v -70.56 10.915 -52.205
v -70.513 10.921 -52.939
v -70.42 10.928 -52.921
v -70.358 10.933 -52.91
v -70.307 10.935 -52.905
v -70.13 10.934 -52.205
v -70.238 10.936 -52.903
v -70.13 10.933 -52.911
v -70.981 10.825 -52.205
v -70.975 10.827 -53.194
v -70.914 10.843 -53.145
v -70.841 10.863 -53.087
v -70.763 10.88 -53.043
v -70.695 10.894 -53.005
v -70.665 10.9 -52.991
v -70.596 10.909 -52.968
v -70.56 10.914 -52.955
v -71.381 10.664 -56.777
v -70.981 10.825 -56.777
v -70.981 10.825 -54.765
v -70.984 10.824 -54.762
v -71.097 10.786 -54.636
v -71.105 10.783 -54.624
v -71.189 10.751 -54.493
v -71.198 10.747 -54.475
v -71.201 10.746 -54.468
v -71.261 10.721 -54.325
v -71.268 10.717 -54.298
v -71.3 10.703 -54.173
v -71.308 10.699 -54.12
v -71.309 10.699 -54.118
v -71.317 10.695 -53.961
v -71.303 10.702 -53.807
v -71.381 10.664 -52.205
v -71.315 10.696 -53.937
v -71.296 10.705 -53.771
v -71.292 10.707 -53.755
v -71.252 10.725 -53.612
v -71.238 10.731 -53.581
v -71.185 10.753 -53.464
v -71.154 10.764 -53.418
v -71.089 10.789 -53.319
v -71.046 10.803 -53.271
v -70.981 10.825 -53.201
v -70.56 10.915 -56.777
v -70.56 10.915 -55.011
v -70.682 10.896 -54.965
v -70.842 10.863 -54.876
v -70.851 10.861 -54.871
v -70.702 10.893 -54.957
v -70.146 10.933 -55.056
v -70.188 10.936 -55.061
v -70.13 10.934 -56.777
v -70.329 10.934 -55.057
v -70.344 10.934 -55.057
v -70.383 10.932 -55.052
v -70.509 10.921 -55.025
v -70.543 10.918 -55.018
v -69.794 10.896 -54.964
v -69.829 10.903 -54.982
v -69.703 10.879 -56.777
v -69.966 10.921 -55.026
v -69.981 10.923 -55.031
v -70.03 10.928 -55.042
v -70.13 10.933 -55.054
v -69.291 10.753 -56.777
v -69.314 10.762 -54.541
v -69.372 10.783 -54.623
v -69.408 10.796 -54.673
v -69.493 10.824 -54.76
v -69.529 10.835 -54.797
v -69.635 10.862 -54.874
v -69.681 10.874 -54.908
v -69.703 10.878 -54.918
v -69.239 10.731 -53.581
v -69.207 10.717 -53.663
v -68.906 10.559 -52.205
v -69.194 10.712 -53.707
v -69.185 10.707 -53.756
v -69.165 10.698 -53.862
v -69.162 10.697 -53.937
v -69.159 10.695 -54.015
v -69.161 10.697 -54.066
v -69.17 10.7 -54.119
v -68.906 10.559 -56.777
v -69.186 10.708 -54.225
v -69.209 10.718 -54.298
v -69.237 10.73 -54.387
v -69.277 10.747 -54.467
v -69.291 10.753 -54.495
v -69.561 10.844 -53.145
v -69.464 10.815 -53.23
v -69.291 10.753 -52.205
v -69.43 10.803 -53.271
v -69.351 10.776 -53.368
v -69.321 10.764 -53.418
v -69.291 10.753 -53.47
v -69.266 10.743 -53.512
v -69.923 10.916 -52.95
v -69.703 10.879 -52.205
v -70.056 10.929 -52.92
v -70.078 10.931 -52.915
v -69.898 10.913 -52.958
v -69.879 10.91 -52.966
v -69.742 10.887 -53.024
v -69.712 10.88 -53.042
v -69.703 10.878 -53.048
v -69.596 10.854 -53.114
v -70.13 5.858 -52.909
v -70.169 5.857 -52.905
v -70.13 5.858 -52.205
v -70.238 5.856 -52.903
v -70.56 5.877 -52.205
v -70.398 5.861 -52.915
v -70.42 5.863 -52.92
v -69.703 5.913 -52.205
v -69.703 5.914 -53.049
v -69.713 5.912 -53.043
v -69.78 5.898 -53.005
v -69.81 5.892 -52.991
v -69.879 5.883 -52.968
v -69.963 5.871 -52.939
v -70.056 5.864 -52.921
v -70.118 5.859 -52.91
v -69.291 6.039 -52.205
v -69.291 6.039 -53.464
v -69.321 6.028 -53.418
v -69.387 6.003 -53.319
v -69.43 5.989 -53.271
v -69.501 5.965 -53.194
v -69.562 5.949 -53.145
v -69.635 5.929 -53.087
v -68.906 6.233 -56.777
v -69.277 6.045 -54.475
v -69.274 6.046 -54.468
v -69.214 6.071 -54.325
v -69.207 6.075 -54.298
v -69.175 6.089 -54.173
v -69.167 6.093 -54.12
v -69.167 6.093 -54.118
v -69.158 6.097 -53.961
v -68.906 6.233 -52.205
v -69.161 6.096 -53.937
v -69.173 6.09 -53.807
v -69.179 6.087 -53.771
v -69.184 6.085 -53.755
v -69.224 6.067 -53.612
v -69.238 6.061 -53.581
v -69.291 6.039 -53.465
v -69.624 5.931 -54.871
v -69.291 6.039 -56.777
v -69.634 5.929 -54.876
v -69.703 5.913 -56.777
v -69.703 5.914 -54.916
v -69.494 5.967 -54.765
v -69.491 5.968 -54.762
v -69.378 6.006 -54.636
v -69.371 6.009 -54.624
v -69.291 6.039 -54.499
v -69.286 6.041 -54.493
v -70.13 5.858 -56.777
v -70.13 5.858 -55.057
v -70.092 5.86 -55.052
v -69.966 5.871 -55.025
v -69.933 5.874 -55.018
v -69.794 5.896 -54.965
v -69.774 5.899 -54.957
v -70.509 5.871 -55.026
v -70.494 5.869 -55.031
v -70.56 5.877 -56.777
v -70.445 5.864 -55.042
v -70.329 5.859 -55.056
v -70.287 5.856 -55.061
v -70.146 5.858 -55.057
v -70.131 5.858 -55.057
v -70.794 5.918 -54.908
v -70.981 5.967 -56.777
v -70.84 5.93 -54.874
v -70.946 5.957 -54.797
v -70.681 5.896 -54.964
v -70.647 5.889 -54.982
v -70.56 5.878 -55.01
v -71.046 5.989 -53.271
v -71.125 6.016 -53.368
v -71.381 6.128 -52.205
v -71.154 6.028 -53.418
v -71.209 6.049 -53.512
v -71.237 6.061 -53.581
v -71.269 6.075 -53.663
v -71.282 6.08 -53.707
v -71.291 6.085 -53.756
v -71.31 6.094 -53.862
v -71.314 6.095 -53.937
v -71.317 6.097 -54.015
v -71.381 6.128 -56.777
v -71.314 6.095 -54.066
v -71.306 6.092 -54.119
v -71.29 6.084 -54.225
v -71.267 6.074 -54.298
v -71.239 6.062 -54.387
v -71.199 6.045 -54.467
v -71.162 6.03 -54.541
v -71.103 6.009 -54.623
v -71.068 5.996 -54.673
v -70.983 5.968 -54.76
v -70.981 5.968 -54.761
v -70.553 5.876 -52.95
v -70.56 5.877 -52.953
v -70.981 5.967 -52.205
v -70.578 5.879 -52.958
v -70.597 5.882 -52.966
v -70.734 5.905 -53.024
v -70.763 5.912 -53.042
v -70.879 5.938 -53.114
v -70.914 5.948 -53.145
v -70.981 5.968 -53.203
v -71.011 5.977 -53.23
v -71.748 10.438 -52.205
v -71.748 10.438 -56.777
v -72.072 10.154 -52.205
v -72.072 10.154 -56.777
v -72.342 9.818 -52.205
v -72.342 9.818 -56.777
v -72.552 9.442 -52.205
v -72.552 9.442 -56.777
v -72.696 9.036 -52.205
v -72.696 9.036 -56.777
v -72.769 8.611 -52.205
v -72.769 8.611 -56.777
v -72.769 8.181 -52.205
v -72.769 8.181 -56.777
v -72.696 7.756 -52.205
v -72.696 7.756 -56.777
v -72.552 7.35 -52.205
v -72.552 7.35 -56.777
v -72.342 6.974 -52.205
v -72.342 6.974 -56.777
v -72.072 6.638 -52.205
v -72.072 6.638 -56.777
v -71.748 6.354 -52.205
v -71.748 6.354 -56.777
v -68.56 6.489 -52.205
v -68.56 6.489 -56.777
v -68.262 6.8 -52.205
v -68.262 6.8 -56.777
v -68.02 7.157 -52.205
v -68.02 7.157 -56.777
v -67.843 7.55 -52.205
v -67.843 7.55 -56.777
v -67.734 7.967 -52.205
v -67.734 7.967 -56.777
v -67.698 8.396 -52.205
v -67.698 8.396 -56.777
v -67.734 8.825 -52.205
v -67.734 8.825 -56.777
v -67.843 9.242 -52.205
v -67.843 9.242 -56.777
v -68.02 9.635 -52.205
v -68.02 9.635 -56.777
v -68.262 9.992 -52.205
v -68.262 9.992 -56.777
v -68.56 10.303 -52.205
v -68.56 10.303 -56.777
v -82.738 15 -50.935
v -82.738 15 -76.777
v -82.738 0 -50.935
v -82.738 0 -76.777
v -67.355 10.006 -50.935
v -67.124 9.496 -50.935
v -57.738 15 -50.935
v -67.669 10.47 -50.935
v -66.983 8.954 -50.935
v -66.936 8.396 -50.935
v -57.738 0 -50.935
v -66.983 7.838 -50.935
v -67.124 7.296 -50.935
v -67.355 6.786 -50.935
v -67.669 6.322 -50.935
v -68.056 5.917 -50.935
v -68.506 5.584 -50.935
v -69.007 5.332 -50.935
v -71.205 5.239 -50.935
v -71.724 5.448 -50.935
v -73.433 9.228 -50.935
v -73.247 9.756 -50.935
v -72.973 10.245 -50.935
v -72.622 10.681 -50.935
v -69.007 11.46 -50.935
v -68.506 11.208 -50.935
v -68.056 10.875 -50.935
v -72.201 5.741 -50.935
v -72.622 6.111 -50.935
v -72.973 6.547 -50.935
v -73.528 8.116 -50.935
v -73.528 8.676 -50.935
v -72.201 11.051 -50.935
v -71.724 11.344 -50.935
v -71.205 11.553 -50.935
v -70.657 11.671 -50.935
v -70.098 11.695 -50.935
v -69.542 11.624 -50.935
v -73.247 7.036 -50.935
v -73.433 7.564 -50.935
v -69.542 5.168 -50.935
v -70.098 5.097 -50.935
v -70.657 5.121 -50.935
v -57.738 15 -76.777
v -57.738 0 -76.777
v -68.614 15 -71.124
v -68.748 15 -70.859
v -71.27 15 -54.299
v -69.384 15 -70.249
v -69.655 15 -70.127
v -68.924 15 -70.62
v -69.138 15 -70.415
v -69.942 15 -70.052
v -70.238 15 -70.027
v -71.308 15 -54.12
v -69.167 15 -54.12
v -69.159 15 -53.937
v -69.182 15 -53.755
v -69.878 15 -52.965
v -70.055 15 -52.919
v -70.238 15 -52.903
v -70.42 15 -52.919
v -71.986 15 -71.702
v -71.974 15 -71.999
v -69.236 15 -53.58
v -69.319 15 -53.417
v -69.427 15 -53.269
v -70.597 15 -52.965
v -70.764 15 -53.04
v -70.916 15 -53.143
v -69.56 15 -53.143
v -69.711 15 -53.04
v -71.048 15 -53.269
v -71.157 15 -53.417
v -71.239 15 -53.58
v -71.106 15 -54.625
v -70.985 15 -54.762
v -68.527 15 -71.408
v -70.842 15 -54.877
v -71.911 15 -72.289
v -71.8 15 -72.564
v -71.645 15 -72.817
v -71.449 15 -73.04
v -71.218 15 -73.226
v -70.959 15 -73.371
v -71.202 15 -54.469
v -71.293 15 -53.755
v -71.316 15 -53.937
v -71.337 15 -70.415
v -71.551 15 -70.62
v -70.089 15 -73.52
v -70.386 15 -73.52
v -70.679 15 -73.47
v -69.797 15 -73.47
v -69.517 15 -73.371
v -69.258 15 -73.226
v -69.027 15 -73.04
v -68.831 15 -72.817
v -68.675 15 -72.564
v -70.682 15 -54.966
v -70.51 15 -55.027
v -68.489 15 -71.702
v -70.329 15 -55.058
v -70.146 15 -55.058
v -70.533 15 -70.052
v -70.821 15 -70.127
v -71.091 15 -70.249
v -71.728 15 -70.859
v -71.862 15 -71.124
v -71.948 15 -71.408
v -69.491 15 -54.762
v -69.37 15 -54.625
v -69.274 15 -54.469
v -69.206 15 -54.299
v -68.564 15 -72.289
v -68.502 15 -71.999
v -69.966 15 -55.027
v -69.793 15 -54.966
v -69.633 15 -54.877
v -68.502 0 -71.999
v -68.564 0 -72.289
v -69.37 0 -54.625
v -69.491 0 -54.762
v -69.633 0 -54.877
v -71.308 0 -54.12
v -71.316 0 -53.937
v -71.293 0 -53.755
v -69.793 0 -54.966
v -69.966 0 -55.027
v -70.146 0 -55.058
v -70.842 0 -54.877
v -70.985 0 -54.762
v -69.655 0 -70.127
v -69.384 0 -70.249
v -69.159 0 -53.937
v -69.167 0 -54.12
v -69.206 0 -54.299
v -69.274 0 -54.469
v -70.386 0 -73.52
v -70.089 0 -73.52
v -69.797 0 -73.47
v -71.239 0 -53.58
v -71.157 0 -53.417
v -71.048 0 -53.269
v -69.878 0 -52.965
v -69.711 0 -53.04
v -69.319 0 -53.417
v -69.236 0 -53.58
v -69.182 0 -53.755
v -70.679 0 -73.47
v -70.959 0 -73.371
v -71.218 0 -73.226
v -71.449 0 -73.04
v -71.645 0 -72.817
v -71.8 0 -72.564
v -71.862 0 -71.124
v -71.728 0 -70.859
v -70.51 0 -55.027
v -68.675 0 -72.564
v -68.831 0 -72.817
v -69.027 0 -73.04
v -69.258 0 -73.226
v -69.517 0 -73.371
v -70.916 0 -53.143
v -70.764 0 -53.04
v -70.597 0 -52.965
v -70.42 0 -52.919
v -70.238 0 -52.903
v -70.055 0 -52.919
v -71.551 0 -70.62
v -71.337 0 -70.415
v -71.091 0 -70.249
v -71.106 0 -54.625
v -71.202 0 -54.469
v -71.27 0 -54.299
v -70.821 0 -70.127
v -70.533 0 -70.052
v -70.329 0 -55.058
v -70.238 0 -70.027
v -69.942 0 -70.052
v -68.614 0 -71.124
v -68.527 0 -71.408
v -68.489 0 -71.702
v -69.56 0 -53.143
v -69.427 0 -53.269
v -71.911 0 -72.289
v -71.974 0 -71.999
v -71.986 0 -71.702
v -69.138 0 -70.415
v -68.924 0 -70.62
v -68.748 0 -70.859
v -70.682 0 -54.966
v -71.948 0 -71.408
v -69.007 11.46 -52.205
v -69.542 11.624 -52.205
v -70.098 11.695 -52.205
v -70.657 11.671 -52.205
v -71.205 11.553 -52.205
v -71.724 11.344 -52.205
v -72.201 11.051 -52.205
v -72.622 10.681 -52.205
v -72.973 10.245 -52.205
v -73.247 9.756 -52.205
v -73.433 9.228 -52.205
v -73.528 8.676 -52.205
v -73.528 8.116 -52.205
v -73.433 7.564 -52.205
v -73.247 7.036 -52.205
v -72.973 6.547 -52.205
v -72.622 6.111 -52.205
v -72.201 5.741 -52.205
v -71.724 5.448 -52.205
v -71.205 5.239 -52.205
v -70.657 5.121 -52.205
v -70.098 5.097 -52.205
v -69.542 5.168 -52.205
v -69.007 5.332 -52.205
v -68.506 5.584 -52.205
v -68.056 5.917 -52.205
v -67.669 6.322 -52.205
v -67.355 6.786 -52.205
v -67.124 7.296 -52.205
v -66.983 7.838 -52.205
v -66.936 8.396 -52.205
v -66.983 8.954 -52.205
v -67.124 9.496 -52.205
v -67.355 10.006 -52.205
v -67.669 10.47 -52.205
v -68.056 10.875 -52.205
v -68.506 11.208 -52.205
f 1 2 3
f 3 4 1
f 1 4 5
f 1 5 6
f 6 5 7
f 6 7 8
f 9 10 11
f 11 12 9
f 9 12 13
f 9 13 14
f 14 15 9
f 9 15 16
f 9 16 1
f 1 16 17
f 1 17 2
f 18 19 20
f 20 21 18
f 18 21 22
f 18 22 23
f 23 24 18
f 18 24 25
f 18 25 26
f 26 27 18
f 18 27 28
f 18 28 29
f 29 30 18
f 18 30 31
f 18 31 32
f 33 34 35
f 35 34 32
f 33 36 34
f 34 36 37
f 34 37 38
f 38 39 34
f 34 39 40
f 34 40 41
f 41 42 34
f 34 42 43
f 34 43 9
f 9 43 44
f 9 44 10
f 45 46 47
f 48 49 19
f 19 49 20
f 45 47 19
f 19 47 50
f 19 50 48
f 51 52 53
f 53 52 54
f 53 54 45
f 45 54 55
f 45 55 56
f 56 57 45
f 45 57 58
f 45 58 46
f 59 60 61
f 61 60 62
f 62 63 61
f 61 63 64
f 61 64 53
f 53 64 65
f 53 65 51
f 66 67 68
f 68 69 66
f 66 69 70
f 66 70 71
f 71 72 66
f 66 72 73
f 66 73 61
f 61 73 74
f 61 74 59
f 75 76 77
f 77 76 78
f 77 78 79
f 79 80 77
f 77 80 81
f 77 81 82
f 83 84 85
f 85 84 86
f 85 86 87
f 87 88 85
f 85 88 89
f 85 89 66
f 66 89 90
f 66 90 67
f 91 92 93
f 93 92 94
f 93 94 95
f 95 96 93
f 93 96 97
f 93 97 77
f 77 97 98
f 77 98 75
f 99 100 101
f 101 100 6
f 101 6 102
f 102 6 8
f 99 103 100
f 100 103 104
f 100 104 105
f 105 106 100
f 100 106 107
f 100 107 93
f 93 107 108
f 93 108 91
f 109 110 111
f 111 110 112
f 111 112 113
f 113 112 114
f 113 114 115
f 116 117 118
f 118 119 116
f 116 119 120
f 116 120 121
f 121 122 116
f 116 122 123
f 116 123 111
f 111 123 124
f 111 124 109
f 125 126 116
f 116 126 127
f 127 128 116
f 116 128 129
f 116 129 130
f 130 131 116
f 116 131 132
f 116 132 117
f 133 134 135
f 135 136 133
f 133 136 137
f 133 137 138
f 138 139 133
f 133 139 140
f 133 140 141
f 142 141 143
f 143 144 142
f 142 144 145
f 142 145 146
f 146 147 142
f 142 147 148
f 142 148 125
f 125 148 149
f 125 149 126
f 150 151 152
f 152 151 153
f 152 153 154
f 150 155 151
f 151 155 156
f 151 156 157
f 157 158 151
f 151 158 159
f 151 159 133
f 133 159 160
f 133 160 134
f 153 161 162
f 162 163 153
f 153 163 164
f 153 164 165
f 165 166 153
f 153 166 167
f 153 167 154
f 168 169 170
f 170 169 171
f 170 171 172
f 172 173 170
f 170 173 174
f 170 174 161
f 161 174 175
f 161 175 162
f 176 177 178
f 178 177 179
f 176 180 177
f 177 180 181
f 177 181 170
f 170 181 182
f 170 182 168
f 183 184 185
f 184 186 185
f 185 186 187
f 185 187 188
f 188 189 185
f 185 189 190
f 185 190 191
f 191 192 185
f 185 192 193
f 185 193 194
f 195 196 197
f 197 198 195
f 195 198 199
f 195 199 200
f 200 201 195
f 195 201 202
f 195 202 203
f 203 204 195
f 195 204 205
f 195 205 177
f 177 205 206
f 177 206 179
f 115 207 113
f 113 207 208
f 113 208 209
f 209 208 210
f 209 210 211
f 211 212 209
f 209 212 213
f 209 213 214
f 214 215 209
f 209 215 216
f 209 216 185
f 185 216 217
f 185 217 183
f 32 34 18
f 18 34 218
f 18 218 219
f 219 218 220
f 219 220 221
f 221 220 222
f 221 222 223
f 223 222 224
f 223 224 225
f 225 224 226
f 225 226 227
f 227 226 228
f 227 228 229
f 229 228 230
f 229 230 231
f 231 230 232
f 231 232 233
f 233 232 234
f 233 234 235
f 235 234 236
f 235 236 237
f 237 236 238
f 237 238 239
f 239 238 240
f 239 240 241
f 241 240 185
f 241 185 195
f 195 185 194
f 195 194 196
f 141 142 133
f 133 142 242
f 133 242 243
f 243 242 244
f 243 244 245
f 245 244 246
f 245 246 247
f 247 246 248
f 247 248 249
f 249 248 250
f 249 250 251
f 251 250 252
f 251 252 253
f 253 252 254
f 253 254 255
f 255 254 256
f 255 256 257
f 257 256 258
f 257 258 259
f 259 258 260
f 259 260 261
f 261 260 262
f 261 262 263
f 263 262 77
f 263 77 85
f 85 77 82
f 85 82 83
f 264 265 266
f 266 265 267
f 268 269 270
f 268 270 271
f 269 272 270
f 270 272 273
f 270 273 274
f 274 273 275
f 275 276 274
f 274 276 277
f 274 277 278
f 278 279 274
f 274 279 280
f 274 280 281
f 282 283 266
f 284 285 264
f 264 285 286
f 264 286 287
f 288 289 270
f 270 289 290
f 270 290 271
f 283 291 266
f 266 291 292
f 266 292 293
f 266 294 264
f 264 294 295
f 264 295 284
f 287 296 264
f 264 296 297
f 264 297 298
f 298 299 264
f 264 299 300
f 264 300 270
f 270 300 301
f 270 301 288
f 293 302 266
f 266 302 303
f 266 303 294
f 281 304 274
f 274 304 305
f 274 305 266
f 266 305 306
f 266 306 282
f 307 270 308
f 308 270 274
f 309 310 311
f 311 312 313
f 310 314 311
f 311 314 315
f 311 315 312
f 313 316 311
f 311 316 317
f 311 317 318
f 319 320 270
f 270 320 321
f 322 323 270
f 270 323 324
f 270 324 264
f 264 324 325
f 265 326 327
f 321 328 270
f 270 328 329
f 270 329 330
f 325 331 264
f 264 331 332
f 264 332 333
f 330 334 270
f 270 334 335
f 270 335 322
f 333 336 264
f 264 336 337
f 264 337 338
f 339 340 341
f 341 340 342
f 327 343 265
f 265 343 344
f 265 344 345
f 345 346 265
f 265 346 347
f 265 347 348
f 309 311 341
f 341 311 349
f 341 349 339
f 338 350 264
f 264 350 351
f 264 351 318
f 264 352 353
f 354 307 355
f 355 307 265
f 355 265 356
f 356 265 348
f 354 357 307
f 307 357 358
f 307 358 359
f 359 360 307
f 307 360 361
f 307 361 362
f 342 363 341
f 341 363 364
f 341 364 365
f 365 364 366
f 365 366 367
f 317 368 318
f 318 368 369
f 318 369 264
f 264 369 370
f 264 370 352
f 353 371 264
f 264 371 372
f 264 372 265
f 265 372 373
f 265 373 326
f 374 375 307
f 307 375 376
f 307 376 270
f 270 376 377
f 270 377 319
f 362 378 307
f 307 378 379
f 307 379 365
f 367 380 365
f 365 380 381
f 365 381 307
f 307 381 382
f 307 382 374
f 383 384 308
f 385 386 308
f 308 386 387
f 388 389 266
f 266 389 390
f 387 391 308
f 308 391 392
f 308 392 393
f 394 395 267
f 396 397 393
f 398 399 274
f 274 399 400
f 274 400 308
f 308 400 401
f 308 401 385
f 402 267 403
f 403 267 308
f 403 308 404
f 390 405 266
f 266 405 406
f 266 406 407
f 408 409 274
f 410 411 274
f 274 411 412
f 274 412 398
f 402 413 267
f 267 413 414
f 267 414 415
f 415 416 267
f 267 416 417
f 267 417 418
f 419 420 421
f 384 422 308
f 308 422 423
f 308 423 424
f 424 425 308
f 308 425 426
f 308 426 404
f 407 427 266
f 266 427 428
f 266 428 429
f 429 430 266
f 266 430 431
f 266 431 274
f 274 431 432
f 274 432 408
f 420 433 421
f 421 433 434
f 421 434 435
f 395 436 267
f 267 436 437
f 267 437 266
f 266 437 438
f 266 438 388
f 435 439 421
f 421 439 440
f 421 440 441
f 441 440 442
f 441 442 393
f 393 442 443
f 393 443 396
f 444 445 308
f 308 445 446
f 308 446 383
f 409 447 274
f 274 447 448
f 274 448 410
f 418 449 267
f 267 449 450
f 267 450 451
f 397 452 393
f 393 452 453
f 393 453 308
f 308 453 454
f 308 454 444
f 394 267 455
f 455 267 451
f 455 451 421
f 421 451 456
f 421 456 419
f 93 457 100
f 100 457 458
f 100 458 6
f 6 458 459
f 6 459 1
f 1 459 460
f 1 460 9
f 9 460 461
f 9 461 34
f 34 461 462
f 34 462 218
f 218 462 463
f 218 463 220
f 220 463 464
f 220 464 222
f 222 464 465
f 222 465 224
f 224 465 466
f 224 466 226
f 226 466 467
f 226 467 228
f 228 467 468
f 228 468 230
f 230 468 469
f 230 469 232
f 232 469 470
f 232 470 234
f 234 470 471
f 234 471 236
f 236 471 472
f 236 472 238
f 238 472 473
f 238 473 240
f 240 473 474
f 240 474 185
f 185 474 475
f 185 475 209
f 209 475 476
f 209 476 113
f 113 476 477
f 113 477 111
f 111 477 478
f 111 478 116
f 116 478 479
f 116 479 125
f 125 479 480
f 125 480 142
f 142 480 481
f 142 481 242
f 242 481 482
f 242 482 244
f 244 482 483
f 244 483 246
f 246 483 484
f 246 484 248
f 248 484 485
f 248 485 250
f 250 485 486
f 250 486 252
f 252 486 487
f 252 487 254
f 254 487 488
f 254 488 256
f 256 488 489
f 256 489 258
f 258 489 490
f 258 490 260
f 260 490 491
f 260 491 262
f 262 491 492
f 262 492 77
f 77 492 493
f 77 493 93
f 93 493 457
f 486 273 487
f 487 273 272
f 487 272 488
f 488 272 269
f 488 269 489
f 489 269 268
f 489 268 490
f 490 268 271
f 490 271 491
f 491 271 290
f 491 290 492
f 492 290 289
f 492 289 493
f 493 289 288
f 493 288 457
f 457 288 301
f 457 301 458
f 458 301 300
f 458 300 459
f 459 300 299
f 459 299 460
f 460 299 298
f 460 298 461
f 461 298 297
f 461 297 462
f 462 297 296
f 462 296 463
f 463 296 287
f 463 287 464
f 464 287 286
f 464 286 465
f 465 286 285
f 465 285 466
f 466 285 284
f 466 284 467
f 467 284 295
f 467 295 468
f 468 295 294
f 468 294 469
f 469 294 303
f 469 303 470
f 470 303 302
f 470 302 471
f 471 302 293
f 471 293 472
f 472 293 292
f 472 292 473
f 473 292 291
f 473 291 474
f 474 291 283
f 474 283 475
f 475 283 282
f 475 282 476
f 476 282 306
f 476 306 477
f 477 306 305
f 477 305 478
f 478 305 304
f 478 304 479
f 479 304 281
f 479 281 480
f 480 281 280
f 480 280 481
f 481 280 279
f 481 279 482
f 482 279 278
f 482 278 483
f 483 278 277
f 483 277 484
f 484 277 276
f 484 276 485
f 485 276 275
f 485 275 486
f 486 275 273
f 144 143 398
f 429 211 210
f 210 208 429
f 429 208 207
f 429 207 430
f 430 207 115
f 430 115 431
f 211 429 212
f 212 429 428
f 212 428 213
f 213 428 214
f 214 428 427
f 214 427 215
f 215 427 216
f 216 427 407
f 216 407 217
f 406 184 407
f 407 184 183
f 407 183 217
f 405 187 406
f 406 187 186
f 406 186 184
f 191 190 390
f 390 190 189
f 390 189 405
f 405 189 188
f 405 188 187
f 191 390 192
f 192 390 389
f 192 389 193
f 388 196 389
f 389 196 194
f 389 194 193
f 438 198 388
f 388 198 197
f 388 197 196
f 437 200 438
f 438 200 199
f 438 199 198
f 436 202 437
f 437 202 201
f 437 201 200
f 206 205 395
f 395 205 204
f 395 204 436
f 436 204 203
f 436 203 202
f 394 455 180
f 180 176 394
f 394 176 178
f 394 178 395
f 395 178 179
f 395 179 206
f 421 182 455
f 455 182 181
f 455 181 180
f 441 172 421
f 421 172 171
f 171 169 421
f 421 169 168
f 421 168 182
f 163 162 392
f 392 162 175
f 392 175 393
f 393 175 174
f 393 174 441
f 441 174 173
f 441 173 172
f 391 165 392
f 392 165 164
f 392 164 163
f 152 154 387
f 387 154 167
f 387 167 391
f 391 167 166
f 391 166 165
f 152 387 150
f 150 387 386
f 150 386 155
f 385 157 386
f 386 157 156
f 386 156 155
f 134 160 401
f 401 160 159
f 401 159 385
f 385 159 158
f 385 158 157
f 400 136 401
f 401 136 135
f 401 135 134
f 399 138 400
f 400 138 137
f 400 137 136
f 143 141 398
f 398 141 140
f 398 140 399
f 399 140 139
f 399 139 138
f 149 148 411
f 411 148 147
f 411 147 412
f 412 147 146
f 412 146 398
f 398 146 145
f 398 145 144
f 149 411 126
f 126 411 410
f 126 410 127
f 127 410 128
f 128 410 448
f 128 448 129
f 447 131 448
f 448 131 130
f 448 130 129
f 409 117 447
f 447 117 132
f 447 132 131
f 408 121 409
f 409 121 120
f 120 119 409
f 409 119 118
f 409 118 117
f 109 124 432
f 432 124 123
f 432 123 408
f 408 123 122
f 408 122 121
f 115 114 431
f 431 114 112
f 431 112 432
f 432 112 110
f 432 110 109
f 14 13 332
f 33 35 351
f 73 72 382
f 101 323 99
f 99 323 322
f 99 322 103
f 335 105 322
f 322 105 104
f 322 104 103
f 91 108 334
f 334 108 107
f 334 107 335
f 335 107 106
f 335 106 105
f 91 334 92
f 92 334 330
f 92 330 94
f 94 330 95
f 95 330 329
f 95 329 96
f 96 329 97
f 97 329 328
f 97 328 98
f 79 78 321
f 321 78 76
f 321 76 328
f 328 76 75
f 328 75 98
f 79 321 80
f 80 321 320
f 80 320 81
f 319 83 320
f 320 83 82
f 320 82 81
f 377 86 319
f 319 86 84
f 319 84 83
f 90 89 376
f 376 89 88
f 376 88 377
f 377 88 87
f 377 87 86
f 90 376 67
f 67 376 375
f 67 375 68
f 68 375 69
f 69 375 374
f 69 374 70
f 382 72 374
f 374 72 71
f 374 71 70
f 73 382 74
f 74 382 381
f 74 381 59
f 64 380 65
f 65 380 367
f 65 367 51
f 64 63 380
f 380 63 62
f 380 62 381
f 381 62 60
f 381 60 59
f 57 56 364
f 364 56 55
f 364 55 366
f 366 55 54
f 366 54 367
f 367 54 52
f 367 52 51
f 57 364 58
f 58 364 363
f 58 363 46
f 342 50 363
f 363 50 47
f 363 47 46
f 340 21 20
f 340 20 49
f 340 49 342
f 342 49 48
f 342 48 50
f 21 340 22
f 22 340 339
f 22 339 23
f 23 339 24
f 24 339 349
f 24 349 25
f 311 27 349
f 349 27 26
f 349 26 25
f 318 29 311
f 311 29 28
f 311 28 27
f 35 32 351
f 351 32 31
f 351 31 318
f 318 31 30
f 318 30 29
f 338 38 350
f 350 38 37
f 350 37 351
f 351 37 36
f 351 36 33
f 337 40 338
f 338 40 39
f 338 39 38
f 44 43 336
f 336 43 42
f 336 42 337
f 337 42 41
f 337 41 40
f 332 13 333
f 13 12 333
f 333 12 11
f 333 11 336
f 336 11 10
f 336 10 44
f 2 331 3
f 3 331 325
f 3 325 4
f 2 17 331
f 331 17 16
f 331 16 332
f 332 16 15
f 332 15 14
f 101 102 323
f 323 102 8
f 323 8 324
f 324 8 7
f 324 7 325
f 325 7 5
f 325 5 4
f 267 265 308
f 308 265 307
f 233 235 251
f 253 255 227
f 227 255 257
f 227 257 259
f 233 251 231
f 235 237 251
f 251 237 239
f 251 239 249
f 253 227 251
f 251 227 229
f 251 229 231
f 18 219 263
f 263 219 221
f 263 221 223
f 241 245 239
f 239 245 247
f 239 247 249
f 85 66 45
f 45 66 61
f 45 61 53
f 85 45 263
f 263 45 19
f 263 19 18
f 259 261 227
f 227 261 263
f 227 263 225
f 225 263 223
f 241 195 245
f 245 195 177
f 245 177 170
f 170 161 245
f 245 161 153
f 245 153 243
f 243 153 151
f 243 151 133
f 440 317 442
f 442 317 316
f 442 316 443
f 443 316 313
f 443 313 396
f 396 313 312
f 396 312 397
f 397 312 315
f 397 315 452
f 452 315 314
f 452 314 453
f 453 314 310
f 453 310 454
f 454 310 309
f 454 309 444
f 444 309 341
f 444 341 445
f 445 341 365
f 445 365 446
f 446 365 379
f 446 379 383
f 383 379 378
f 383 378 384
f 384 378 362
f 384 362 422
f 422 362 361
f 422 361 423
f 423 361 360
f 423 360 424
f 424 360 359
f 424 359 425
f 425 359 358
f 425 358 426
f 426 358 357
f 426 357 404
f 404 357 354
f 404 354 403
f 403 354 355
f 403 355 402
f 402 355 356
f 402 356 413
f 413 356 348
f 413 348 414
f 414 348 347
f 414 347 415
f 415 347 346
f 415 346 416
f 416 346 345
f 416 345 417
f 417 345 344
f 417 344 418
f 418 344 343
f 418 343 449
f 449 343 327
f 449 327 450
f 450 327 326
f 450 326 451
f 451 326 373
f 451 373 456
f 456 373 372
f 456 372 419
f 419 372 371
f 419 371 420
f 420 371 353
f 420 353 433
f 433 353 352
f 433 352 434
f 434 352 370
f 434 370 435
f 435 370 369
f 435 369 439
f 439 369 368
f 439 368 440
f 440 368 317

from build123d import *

# Parameters (mm, degrees)
SKETCH1_W           = 25
SKETCH1_H           = 5.842
BOSS_EXTRUDE1_DEPTH = 15
SKETCH5_R           = 2.54
CUT_EXTRUDE3_DEPTH  = 85.289149032
SKETCH7_R           = 3.302
CUT_EXTRUDE4_DEPTH  = 1.27
SKETCH10_R          = 1.0795
CUT_EXTRUDE7_DEPTH  = 102.459910937
SKETCH11_W          = 25
SKETCH11_H          = 15
BOSS_EXTRUDE2_DEPTH = 20
SKETCH12_R          = 1.75
CUT_EXTRUDE8_DEPTH  = 114.864732767


with BuildPart() as part:
    # Sketch1 → Boss-Extrude1 (new body)
    with BuildSketch(Plane(origin=(0, 0, 0), x_dir=(1, 0, 0), z_dir=(0, 1, 0))):
        with Locations((-70.237728278, 53.855595943)):
            Rectangle(SKETCH1_W, SKETCH1_H)
    extrude(amount=BOSS_EXTRUDE1_DEPTH)

    # Sketch5 → Cut-Extrude3 (cut, through all)
    with BuildSketch(Plane.XY.offset(-50.934595943)):
        with Locations((-70.237728278, 8.396)):
            Circle(SKETCH5_R)
    extrude(amount=-CUT_EXTRUDE3_DEPTH, mode=Mode.SUBTRACT)

    # Sketch7 → Cut-Extrude4 (cut)
    with BuildSketch(Plane.XY.offset(-50.934595943)):
        with Locations((-70.237728278, 8.396)):
            Circle(SKETCH7_R)
    extrude(amount=-CUT_EXTRUDE4_DEPTH, mode=Mode.SUBTRACT)

    # Sketch10 → Cut-Extrude7 (cut, through all)
    with BuildSketch(Plane(origin=(0, 15, 0), x_dir=(1, 0, 0), z_dir=(0, 1, 0))):
        with Locations(Location((-70.237728278, 53.982595943, 0), (0, 0, 270))):
            Circle(SKETCH10_R)
    extrude(amount=-CUT_EXTRUDE7_DEPTH, mode=Mode.SUBTRACT)

    # Sketch11 → Boss-Extrude2 (add)
    with BuildSketch(Plane(origin=(0, 0, -56.776595943), x_dir=(-1, 0, 0), z_dir=(0, 0, -1))):
        with Locations((70.237728278, 7.5)):
            Rectangle(SKETCH11_W, SKETCH11_H)
    extrude(amount=BOSS_EXTRUDE2_DEPTH)

    # Sketch12 → Cut-Extrude8 (cut, through all)
    with BuildSketch(Plane(origin=(0, 15, 0), x_dir=(1, 0, 0), z_dir=(0, 1, 0))):
        with Locations(Location((-70.237728278, 71.776595943, 0), (0, 0, 270))):
            Circle(SKETCH12_R)
    extrude(amount=-CUT_EXTRUDE8_DEPTH, mode=Mode.SUBTRACT)


solid = part.part
